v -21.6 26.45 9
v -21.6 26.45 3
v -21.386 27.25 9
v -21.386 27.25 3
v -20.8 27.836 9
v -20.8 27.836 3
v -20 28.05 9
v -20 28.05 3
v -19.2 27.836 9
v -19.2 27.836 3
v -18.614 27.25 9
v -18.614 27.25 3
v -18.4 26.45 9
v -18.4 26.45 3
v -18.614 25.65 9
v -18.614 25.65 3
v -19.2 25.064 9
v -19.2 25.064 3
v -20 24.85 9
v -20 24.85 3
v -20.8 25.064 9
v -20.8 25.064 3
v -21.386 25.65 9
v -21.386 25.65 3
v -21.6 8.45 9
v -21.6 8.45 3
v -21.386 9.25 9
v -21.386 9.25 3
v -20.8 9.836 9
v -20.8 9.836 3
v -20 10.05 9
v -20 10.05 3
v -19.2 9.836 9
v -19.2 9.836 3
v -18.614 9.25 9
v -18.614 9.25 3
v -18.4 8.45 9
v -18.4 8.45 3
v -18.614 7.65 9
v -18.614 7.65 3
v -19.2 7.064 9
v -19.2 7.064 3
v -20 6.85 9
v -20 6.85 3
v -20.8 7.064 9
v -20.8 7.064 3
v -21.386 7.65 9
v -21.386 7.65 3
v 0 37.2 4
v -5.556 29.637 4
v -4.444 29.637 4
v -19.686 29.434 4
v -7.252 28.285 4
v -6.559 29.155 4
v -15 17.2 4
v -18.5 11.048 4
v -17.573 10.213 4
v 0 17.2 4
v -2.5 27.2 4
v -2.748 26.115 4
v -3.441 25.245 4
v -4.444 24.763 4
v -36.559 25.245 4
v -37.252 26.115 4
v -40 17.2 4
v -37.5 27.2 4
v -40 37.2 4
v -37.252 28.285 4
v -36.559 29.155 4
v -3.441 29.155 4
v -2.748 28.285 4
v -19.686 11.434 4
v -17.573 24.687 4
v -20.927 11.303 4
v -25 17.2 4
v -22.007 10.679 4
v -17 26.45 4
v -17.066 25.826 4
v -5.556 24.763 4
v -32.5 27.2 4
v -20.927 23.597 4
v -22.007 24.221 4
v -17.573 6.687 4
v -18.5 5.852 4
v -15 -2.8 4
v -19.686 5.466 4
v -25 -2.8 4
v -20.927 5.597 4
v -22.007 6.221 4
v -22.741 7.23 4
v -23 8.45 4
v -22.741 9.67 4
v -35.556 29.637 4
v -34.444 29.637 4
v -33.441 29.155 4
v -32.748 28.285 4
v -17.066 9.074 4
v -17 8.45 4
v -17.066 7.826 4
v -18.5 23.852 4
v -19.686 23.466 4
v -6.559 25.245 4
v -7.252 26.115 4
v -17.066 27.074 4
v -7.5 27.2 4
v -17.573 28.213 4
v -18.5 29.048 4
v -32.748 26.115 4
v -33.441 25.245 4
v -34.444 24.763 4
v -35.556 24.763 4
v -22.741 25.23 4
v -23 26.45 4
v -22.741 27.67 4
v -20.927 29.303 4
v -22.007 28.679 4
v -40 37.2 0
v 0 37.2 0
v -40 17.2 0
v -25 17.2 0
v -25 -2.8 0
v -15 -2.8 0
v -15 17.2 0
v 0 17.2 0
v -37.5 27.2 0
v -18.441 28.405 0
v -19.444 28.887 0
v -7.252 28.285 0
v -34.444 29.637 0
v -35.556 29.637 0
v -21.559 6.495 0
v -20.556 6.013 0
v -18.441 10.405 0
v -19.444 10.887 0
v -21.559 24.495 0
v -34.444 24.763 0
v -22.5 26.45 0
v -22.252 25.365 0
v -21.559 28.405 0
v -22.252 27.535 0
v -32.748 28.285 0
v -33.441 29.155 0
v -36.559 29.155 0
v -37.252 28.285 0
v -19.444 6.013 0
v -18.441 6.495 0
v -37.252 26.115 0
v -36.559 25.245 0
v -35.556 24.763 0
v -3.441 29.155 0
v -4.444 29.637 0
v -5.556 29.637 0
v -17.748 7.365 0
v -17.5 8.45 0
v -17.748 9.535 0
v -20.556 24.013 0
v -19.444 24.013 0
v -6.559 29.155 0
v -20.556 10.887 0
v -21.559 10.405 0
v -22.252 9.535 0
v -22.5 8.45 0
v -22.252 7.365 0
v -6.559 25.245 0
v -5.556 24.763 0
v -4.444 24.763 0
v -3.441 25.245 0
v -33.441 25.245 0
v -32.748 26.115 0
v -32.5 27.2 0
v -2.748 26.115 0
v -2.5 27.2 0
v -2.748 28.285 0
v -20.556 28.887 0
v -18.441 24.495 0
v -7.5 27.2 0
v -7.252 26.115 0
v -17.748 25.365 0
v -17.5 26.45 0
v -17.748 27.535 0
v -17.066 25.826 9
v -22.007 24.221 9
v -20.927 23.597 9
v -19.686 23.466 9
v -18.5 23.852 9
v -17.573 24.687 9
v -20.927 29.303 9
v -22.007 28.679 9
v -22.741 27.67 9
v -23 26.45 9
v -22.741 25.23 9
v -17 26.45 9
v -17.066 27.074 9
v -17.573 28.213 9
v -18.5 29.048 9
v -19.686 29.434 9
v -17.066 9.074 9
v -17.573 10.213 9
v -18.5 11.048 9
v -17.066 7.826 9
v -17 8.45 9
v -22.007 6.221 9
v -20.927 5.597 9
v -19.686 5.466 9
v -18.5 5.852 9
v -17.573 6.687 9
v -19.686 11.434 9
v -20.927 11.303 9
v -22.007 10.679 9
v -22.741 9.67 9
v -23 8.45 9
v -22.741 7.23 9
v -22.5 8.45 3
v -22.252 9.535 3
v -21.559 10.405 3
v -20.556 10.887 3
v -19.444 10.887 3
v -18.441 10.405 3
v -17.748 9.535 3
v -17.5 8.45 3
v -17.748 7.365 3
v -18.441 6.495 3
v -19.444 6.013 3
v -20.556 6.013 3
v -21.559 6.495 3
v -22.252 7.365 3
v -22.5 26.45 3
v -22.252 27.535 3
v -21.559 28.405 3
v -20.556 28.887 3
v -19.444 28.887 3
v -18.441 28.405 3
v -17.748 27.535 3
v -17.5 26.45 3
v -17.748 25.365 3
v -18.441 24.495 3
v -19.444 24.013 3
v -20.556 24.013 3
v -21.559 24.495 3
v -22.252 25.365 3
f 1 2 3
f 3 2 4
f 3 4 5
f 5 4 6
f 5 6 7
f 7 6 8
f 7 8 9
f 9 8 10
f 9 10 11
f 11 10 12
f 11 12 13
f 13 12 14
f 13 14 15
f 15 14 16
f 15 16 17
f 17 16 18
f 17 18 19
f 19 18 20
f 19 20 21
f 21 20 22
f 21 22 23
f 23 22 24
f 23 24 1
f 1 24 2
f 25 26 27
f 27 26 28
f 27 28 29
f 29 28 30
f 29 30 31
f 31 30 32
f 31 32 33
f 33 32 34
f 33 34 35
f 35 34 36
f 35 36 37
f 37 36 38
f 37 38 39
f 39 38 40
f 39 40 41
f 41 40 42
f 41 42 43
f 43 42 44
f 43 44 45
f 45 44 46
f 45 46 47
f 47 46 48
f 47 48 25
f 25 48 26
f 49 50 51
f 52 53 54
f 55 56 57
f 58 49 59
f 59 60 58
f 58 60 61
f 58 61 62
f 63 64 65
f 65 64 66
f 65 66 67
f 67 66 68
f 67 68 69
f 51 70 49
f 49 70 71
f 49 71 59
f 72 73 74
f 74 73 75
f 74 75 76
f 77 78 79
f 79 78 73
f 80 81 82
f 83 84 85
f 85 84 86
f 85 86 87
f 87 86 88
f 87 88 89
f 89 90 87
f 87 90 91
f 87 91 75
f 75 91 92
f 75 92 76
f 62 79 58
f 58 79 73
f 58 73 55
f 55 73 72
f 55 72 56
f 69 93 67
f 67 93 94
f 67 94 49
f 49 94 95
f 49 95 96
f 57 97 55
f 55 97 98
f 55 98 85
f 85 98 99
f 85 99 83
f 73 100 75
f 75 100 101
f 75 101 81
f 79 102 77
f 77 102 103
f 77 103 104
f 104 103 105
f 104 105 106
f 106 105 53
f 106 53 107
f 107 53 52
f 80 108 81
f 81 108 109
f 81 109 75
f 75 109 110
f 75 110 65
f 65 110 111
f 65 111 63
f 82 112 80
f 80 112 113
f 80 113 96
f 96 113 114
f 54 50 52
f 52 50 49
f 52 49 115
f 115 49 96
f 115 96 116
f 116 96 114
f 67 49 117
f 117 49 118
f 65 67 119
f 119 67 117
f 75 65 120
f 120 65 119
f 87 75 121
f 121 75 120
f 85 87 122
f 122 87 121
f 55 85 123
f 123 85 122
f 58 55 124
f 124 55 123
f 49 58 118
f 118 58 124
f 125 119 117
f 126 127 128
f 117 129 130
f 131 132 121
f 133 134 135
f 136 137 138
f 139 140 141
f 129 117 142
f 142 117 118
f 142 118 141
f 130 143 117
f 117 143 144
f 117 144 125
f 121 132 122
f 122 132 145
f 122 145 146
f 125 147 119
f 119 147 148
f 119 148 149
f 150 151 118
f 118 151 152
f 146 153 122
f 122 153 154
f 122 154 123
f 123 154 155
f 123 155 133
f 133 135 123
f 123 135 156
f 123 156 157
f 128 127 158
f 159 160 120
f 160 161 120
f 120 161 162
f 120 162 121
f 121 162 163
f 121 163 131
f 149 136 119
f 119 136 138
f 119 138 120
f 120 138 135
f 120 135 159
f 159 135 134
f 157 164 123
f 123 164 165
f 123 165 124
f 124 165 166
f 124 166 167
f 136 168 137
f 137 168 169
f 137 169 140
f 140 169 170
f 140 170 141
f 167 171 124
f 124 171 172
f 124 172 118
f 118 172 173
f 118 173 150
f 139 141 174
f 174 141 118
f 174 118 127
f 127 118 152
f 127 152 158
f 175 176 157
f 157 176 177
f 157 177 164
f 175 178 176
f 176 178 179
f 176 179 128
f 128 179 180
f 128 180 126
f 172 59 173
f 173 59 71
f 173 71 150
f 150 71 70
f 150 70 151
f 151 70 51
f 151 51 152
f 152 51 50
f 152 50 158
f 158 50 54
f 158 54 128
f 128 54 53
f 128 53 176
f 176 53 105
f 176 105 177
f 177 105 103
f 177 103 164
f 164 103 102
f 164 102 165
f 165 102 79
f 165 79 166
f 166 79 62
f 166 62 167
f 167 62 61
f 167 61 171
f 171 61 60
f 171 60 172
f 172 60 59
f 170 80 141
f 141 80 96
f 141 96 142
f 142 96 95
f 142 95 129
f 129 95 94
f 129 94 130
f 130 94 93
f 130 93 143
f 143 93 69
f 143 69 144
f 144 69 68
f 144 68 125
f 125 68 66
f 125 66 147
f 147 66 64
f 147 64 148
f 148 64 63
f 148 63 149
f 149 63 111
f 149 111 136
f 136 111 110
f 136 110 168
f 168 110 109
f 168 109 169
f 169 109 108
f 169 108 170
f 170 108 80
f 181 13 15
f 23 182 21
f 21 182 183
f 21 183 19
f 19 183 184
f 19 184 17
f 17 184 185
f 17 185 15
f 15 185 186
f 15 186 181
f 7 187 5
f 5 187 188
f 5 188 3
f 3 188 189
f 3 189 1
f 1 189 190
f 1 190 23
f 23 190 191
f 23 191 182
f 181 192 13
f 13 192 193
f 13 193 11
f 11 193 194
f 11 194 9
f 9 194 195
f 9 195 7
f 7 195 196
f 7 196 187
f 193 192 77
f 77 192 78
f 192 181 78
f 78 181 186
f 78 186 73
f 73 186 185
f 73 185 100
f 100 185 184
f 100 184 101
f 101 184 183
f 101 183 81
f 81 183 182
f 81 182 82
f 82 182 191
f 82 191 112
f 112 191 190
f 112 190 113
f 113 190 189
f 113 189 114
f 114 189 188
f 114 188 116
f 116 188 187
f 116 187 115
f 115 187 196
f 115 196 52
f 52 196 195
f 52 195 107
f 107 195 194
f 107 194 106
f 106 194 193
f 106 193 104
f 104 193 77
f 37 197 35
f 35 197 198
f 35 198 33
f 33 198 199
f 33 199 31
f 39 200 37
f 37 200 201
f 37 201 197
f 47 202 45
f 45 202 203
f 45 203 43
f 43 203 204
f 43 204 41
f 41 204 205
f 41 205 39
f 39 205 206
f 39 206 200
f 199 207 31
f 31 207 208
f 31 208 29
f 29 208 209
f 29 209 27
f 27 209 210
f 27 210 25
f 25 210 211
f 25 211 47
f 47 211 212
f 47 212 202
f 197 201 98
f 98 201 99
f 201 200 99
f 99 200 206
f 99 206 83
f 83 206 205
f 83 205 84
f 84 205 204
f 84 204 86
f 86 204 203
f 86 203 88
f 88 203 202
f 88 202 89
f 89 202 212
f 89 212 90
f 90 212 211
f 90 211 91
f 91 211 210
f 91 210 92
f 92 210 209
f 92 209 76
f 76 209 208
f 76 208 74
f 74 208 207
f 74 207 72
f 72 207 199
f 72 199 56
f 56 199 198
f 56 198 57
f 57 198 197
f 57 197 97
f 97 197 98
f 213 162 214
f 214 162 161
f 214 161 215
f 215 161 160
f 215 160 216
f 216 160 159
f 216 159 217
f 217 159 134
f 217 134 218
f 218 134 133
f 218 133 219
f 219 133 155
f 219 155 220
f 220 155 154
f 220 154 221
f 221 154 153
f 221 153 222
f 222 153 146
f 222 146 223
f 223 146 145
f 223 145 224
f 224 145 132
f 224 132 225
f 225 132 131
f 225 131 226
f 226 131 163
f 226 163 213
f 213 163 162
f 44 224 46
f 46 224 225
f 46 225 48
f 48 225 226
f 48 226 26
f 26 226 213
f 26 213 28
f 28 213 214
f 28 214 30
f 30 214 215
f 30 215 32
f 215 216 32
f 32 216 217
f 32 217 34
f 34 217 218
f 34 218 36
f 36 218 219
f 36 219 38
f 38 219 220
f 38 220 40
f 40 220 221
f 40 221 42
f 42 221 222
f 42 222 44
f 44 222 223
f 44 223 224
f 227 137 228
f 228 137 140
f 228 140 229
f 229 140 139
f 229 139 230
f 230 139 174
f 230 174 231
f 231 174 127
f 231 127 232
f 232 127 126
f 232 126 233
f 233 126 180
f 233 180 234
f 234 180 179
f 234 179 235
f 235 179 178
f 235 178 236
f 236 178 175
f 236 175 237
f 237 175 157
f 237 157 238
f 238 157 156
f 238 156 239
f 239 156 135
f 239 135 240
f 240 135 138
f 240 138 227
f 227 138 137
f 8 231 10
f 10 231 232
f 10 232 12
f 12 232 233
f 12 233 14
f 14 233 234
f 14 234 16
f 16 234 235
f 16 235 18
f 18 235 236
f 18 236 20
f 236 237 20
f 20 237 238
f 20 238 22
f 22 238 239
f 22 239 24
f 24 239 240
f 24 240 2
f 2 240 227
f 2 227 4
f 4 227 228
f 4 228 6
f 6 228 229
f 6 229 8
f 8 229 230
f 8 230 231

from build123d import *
from build123d.topology import SkipClean

# Parameters (mm, degrees)
SKETCH1_W           = 5
SKETCH1_H           = 2.8
SKETCH1_H_2         = 2
SKETCH1_W_2         = 15
SKETCH1_H_3         = 8.75
SKETCH1_H_4         = 9.25
SKETCH1_H_5         = 18
BOSS_EXTRUDE1_DEPTH = 4
SKETCH2_R           = 2.5
CUT_EXTRUDE1_DEPTH  = 13
SKETCH3_R           = 3
SKETCH3_R_2         = 1.6
BOSS_EXTRUDE2_DEPTH = 5
SKETCH4_R           = 2.5
CUT_EXTRUDE3_DEPTH  = 3


with BuildPart() as part:
    # Sketch1 → Boss-Extrude1 (new body)
    with BuildSketch(Plane.XY):
        with BuildLine():
            Line((-20, 0), (-15, 0))
            Line((-15, 0), (-15, 17.2))
            Line((-15, 17.2), (-20, 17.2))
            Line((-20, 17.2), (-20, 10.05))
            ThreePointArc((-20, 10.05), (-18.86862915, 9.58137085), (-18.4, 8.45))
            ThreePointArc((-18.4, 8.45), (-18.86862915, 7.31862915), (-20, 6.85))
            Line((-20, 6.85), (-20, 0))
        make_face()
        with BuildLine():
            Line((-20, 10.05), (-20, 17.2))
            Line((-20, 17.2), (-25, 17.2))
            Line((-25, 17.2), (-25, 8.45))
            Line((-25, 8.45), (-21.6, 8.45))
            ThreePointArc((-21.6, 8.45), (-21.13137085, 9.58137085), (-20, 10.05))
        make_face()
        with BuildLine():
            Line((-25, 0), (-20, 0))
            Line((-20, 0), (-20, 6.85))
            ThreePointArc((-20, 6.85), (-21.13137085, 7.31862915), (-21.6, 8.45))
            Line((-21.6, 8.45), (-25, 8.45))
            Line((-25, 8.45), (-25, 0))
        make_face()
        with Locations((-22.5, -1.4)):
            Rectangle(SKETCH1_W, SKETCH1_H)
        with Locations((-17.5, -1.4)):
            Rectangle(SKETCH1_W, SKETCH1_H)
        with BuildLine():
            Line((-20, 17.2), (-15, 17.2))
            Line((-15, 17.2), (-15, 35.2))
            Line((-15, 35.2), (-20, 35.2))
            Line((-20, 35.2), (-20, 28.05))
            ThreePointArc((-20, 28.05), (-18.86862915, 27.58137085), (-18.4, 26.45))
            ThreePointArc((-18.4, 26.45), (-18.86862915, 25.31862915), (-20, 24.85))
            Line((-20, 24.85), (-20, 17.2))
        make_face()
        with BuildLine():
            Line((-25, 17.2), (-20, 17.2))
            Line((-20, 17.2), (-20, 24.85))
            ThreePointArc((-20, 24.85), (-21.13137085, 25.31862915), (-21.6, 26.45))
            Line((-21.6, 26.45), (-25, 26.45))
            Line((-25, 26.45), (-25, 17.2))
        make_face()
        with BuildLine():
            Line((-20, 28.05), (-20, 35.2))
            Line((-20, 35.2), (-25, 35.2))
            Line((-25, 35.2), (-25, 26.45))
            Line((-25, 26.45), (-21.6, 26.45))
            ThreePointArc((-21.6, 26.45), (-21.13137085, 27.58137085), (-20, 28.05))
        make_face()
        with Locations((-17.5, 36.2)):
            Rectangle(SKETCH1_W, SKETCH1_H_2)
        with Locations((-22.5, 36.2)):
            Rectangle(SKETCH1_W, SKETCH1_H_2)
        with Locations((-7.5, 36.2)):
            Rectangle(SKETCH1_W_2, SKETCH1_H_2)
        with Locations((-32.5, 36.2)):
            Rectangle(SKETCH1_W_2, SKETCH1_H_2)
        with Locations((-32.5, 30.825)):
            Rectangle(SKETCH1_W_2, SKETCH1_H_3)
        with Locations((-32.5, 21.825)):
            Rectangle(SKETCH1_W_2, SKETCH1_H_4)
        with Locations((-7.5, 26.2)):
            Rectangle(SKETCH1_W_2, SKETCH1_H_5)
    extrude(amount=BOSS_EXTRUDE1_DEPTH)

    # Sketch2 → Cut-Extrude1 (cut)
    with BuildSketch(Plane.XY.offset(4)):
        with Locations((-35, 27.2)):
            Circle(SKETCH2_R)
        with Locations((-5, 27.2)):
            Circle(SKETCH2_R)
    extrude(amount=-CUT_EXTRUDE1_DEPTH, mode=Mode.SUBTRACT)

    # Sketch3 → Boss-Extrude2 (add)
    # profile 1 of 2: a face of its own
    with SkipClean():  # the faces are left unmerged after this step: merging them gives an invalid solid
        with BuildSketch(Plane.XY.offset(4)):
            with Locations((-20, 26.45)):
                Circle(SKETCH3_R)
            with Locations((-20, 26.45)):
                Circle(SKETCH3_R_2, mode=Mode.SUBTRACT)
        # profile 2 of 2: a face of its own
        with BuildSketch(Plane.XY.offset(4)):
            with Locations((-20, 8.45)):
                Circle(SKETCH3_R)
            with Locations((-20, 8.45)):
                Circle(SKETCH3_R_2, mode=Mode.SUBTRACT)
        extrude(amount=BOSS_EXTRUDE2_DEPTH)

    # Sketch4 → Cut-Extrude3 (cut)
    with SkipClean():  # the faces are left unmerged after this step: merging them gives an invalid solid
        with BuildSketch(Plane(origin=(0, 0, 0), x_dir=(-1, 0, 0), z_dir=(0, 0, -1))):
            with Locations((20, 26.45)):
                Circle(SKETCH4_R)
            with Locations((20, 8.45)):
                Circle(SKETCH4_R)
        extrude(amount=-CUT_EXTRUDE3_DEPTH, mode=Mode.SUBTRACT)


solid = part.part
